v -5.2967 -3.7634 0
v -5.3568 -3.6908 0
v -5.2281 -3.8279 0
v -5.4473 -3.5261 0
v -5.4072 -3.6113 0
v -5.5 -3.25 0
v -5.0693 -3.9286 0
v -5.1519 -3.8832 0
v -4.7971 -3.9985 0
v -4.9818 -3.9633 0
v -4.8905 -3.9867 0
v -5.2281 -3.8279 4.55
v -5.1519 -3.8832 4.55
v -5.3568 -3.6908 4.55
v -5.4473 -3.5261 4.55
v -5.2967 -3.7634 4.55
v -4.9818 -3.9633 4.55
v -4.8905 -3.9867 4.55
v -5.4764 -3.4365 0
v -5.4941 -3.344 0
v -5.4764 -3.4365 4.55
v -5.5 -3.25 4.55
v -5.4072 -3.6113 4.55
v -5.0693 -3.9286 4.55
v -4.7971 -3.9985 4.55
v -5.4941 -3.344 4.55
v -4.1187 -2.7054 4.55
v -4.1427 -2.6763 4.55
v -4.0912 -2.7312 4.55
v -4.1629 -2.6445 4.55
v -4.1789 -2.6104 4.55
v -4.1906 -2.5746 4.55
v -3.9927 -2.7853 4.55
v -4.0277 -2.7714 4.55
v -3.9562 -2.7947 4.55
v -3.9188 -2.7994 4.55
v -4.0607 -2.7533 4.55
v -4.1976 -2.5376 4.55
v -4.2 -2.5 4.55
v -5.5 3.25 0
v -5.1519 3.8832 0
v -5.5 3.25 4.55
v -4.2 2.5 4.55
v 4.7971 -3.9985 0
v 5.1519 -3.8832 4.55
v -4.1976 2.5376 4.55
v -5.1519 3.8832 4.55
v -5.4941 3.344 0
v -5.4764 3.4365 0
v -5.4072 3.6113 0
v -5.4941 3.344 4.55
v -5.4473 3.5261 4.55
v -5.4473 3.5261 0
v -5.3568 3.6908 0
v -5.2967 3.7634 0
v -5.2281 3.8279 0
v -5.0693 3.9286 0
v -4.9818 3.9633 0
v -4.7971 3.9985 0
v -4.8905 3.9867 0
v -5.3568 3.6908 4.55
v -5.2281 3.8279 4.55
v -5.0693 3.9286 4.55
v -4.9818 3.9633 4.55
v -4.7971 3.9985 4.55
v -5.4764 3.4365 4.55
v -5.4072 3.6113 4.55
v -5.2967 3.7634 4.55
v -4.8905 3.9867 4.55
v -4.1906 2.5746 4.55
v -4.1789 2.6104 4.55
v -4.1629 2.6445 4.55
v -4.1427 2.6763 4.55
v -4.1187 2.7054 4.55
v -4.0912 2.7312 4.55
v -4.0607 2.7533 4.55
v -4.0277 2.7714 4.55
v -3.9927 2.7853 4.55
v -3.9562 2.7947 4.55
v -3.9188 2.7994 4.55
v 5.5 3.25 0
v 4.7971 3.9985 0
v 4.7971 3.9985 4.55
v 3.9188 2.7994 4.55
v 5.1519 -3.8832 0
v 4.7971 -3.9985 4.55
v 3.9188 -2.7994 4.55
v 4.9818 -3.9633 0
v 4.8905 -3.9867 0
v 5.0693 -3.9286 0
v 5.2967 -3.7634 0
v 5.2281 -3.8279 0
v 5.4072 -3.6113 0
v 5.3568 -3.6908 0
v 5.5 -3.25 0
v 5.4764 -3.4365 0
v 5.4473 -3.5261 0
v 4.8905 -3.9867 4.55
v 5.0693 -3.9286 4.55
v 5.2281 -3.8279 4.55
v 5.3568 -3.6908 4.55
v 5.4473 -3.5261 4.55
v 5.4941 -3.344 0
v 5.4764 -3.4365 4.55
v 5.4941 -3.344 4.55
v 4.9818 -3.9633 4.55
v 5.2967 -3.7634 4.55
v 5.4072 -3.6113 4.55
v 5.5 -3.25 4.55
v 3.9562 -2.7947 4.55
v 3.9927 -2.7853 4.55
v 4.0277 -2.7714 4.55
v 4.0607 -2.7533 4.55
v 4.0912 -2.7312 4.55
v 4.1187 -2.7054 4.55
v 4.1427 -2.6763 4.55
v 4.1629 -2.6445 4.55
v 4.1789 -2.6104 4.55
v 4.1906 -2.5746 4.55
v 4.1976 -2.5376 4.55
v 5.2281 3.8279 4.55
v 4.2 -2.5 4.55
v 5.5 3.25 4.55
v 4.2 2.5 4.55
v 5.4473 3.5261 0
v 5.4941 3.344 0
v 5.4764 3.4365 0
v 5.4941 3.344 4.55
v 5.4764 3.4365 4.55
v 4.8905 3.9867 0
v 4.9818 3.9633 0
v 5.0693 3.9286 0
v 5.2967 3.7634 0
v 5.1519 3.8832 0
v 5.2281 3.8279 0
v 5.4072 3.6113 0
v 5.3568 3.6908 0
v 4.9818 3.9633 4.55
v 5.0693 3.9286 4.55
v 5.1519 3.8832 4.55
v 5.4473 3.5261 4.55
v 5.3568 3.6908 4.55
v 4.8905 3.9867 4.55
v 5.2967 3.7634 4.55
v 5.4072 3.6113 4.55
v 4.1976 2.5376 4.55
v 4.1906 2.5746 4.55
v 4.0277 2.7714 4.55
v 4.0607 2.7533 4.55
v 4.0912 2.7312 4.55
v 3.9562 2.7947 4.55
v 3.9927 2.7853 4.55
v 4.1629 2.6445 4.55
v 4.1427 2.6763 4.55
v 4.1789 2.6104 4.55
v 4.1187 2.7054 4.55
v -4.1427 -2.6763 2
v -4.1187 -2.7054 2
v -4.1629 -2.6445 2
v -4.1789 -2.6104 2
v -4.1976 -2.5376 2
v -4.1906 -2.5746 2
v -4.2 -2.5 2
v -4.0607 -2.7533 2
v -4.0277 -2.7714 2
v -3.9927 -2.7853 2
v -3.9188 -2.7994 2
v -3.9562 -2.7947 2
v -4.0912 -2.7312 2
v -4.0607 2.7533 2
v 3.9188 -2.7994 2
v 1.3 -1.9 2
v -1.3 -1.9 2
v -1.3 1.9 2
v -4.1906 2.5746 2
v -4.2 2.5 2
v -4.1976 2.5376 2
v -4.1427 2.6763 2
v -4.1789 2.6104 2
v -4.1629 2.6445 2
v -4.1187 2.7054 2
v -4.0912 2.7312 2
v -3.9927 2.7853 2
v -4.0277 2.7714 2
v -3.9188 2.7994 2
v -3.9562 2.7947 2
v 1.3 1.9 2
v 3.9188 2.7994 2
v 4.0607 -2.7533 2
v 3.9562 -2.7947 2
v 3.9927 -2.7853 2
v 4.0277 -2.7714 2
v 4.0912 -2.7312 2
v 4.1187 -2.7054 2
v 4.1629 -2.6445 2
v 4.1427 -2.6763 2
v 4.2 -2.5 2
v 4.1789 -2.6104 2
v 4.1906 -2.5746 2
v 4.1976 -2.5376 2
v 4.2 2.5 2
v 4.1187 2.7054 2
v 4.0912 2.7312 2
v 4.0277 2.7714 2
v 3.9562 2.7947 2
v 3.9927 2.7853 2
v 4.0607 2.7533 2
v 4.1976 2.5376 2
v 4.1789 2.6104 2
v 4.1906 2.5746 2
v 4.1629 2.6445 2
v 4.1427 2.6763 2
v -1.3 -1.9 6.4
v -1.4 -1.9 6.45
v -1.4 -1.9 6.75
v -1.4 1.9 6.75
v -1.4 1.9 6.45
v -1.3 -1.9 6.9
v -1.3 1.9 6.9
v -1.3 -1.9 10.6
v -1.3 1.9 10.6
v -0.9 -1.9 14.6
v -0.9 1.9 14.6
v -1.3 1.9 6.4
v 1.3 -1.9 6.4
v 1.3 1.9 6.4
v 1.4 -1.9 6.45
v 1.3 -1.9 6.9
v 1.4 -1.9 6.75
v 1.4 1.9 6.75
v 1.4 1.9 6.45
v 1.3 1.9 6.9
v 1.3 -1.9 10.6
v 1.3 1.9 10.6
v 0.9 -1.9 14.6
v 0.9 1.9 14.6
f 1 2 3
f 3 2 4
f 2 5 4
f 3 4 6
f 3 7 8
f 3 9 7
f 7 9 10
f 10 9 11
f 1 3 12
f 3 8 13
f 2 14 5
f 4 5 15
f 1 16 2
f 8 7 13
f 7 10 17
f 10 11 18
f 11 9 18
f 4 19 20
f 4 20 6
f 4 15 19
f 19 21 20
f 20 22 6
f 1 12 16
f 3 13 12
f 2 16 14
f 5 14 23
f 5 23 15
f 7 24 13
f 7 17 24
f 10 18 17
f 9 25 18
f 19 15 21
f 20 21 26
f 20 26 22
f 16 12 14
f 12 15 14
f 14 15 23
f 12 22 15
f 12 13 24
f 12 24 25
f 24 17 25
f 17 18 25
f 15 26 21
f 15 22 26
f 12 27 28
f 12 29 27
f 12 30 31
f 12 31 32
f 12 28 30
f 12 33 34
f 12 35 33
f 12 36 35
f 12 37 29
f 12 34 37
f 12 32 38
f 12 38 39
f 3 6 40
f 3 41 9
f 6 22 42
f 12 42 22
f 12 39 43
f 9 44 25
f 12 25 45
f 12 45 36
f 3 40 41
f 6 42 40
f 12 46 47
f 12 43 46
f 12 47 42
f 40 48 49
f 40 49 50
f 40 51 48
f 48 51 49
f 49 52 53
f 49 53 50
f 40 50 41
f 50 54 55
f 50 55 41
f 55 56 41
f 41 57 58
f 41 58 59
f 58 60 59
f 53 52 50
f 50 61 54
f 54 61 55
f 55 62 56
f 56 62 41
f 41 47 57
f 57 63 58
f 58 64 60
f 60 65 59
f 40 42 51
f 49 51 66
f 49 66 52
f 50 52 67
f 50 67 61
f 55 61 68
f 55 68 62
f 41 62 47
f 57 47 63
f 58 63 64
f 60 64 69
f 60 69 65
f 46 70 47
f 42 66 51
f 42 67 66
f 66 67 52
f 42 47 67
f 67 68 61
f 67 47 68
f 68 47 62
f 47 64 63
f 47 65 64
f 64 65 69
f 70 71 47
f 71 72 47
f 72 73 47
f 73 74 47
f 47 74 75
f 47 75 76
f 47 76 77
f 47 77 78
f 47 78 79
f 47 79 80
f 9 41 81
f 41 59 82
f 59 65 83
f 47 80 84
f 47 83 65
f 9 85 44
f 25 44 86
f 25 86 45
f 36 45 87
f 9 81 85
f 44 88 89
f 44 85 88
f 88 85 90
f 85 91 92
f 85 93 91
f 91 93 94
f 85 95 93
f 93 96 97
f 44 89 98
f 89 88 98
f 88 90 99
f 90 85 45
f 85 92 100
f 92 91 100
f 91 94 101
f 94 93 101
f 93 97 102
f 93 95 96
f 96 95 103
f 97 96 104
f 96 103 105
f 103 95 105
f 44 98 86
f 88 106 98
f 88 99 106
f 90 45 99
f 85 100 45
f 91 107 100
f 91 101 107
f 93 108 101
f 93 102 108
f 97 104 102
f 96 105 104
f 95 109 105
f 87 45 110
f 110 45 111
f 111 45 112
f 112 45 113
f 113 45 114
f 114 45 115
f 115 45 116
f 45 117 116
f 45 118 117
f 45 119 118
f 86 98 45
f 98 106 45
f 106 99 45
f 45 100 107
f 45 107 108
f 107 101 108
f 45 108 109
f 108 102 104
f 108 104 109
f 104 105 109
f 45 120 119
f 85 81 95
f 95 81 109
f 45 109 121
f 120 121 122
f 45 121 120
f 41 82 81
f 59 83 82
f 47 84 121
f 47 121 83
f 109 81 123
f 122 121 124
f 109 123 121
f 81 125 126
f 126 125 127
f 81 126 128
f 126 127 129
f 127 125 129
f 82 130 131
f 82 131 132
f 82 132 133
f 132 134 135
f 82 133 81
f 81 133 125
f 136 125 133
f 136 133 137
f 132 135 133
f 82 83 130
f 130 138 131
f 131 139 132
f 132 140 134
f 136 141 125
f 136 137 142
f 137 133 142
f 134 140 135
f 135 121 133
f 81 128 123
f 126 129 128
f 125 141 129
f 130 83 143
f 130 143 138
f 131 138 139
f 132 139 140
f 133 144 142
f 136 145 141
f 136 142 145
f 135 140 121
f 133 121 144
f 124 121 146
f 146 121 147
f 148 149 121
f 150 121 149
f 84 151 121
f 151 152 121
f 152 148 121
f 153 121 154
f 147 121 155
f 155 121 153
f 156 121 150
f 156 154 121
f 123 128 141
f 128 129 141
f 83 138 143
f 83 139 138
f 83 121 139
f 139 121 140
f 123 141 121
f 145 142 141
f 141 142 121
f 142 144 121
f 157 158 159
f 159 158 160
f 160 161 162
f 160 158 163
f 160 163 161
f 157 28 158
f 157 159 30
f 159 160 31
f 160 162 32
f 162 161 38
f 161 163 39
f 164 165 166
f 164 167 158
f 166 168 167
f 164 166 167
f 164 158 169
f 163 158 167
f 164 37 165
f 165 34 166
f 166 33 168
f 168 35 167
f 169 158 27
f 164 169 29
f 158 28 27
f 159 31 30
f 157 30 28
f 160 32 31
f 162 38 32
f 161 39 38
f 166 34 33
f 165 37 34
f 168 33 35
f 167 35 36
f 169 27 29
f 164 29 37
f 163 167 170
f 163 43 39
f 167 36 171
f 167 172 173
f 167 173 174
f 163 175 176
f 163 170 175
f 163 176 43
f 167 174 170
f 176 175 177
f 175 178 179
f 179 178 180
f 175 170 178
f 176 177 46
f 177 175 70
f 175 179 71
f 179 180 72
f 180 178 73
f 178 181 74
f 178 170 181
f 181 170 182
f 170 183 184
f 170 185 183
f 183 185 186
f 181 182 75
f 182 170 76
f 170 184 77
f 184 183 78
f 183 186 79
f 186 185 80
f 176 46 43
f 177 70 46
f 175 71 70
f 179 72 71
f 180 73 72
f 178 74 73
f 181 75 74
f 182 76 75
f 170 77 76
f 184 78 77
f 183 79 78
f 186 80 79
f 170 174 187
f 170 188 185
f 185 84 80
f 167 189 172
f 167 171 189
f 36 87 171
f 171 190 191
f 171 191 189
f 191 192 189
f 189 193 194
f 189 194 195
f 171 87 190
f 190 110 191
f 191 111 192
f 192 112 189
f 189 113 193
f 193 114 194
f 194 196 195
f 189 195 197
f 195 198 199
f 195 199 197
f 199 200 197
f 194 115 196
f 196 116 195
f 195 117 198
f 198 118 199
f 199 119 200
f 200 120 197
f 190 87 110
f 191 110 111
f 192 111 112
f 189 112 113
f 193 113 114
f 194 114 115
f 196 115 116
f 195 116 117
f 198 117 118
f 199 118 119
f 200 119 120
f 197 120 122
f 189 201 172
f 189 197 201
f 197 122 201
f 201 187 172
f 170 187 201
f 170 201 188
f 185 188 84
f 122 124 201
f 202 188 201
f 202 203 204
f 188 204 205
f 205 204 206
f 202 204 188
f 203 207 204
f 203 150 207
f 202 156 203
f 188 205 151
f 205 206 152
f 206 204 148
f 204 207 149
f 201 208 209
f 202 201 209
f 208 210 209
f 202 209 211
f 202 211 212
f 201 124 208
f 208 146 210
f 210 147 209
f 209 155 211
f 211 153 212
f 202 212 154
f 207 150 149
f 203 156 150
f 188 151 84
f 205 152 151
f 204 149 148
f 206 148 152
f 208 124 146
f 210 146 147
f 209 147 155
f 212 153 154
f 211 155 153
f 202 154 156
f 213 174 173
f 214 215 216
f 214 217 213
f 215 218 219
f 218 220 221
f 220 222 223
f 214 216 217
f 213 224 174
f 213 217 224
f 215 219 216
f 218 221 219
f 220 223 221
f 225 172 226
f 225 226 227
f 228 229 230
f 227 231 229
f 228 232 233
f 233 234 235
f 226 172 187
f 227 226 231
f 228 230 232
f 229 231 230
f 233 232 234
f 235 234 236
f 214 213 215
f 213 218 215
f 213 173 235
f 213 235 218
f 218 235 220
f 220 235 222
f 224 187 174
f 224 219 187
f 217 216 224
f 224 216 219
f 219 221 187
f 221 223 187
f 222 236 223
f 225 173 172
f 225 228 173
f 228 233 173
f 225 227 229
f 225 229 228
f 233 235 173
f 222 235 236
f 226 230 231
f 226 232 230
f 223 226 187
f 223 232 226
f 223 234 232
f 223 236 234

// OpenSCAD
$fn = 50;

difference() {
	union() {
		translate(v = [0, 0, 0]) {
			rotate(a = [0, 0, 0]) {
				difference() {
					union() {
						translate(v = [0, 0, 0]) {
							rotate(a = [0, 0, 0]) {
								difference() {
									union() {
										hull() {
											translate(v = [-4.75, 3.25, 0]) {
												cylinder(h = 4.55, r = 0.75);
											}
											translate(v = [4.75, 3.25, 0]) {
												cylinder(h = 4.55, r = 0.75);
											}
											translate(v = [-4.75, -3.25, 0]) {
												cylinder(h = 4.55, r = 0.75);
											}
											translate(v = [4.75, -3.25, 0]) {
												cylinder(h = 4.55, r = 0.75);
											}
										}
									}
									union() {
										translate(v = [0, 0, 2.0]) {
											hull() {
												translate(v = [-3.9000000000000004, 2.5, 0]) {
													cylinder(h = 2.65, r = 0.3);
												}
												translate(v = [3.9000000000000004, 2.5, 0]) {
													cylinder(h = 2.65, r = 0.3);
												}
												translate(v = [-3.9000000000000004, -2.5, 0]) {
													cylinder(h = 2.65, r = 0.3);
												}
												translate(v = [3.9000000000000004, -2.5, 0]) {
													cylinder(h = 2.65, r = 0.3);
												}
											}
										}
									}
								}
							}
						}
						translate(v = [0, 0, 0]) {
							rotate(a = [0, 0, 0]) {
								difference() {
									union() {
										translate(v = [-1.5, -1.9, 1.95]) {
											cube(size = [3.0, 3.8, 12.65]);
										}
									}
									union() {
										translate(v = [0, 2.0, 0]) {
											rotate(a = [90, 0, 0]) {
												linear_extrude(height = 4.0) {
													polygon(points = [[-1.3, 1.85], [-1.3, 6.3999999999999995], [-1.4, 6.449999999999999], [-1.4, 6.75], [-1.3, 6.8999999999999995], [-1.3, 10.6], [-0.9, 14.6], [-0.9, 14.799999999999999], [-1.7, 14.799999999999999], [-1.7, 1.85]]);
												}
											}
										}
										translate(v = [0, 2.0, 0]) {
											rotate(a = [90, 0, 0]) {
												linear_extrude(height = 4.0) {
													polygon(points = [[1.3, 1.85], [1.3, 6.3999999999999995], [1.4, 6.449999999999999], [1.4, 6.75], [1.3, 6.8999999999999995], [1.3, 10.6], [0.9, 14.6], [0.9, 14.799999999999999], [1.7, 14.799999999999999], [1.7, 1.85]]);
												}
											}
										}
									}
								}
							}
						}
					}
					union();
				}
			}
		}
	}
	union();
}
